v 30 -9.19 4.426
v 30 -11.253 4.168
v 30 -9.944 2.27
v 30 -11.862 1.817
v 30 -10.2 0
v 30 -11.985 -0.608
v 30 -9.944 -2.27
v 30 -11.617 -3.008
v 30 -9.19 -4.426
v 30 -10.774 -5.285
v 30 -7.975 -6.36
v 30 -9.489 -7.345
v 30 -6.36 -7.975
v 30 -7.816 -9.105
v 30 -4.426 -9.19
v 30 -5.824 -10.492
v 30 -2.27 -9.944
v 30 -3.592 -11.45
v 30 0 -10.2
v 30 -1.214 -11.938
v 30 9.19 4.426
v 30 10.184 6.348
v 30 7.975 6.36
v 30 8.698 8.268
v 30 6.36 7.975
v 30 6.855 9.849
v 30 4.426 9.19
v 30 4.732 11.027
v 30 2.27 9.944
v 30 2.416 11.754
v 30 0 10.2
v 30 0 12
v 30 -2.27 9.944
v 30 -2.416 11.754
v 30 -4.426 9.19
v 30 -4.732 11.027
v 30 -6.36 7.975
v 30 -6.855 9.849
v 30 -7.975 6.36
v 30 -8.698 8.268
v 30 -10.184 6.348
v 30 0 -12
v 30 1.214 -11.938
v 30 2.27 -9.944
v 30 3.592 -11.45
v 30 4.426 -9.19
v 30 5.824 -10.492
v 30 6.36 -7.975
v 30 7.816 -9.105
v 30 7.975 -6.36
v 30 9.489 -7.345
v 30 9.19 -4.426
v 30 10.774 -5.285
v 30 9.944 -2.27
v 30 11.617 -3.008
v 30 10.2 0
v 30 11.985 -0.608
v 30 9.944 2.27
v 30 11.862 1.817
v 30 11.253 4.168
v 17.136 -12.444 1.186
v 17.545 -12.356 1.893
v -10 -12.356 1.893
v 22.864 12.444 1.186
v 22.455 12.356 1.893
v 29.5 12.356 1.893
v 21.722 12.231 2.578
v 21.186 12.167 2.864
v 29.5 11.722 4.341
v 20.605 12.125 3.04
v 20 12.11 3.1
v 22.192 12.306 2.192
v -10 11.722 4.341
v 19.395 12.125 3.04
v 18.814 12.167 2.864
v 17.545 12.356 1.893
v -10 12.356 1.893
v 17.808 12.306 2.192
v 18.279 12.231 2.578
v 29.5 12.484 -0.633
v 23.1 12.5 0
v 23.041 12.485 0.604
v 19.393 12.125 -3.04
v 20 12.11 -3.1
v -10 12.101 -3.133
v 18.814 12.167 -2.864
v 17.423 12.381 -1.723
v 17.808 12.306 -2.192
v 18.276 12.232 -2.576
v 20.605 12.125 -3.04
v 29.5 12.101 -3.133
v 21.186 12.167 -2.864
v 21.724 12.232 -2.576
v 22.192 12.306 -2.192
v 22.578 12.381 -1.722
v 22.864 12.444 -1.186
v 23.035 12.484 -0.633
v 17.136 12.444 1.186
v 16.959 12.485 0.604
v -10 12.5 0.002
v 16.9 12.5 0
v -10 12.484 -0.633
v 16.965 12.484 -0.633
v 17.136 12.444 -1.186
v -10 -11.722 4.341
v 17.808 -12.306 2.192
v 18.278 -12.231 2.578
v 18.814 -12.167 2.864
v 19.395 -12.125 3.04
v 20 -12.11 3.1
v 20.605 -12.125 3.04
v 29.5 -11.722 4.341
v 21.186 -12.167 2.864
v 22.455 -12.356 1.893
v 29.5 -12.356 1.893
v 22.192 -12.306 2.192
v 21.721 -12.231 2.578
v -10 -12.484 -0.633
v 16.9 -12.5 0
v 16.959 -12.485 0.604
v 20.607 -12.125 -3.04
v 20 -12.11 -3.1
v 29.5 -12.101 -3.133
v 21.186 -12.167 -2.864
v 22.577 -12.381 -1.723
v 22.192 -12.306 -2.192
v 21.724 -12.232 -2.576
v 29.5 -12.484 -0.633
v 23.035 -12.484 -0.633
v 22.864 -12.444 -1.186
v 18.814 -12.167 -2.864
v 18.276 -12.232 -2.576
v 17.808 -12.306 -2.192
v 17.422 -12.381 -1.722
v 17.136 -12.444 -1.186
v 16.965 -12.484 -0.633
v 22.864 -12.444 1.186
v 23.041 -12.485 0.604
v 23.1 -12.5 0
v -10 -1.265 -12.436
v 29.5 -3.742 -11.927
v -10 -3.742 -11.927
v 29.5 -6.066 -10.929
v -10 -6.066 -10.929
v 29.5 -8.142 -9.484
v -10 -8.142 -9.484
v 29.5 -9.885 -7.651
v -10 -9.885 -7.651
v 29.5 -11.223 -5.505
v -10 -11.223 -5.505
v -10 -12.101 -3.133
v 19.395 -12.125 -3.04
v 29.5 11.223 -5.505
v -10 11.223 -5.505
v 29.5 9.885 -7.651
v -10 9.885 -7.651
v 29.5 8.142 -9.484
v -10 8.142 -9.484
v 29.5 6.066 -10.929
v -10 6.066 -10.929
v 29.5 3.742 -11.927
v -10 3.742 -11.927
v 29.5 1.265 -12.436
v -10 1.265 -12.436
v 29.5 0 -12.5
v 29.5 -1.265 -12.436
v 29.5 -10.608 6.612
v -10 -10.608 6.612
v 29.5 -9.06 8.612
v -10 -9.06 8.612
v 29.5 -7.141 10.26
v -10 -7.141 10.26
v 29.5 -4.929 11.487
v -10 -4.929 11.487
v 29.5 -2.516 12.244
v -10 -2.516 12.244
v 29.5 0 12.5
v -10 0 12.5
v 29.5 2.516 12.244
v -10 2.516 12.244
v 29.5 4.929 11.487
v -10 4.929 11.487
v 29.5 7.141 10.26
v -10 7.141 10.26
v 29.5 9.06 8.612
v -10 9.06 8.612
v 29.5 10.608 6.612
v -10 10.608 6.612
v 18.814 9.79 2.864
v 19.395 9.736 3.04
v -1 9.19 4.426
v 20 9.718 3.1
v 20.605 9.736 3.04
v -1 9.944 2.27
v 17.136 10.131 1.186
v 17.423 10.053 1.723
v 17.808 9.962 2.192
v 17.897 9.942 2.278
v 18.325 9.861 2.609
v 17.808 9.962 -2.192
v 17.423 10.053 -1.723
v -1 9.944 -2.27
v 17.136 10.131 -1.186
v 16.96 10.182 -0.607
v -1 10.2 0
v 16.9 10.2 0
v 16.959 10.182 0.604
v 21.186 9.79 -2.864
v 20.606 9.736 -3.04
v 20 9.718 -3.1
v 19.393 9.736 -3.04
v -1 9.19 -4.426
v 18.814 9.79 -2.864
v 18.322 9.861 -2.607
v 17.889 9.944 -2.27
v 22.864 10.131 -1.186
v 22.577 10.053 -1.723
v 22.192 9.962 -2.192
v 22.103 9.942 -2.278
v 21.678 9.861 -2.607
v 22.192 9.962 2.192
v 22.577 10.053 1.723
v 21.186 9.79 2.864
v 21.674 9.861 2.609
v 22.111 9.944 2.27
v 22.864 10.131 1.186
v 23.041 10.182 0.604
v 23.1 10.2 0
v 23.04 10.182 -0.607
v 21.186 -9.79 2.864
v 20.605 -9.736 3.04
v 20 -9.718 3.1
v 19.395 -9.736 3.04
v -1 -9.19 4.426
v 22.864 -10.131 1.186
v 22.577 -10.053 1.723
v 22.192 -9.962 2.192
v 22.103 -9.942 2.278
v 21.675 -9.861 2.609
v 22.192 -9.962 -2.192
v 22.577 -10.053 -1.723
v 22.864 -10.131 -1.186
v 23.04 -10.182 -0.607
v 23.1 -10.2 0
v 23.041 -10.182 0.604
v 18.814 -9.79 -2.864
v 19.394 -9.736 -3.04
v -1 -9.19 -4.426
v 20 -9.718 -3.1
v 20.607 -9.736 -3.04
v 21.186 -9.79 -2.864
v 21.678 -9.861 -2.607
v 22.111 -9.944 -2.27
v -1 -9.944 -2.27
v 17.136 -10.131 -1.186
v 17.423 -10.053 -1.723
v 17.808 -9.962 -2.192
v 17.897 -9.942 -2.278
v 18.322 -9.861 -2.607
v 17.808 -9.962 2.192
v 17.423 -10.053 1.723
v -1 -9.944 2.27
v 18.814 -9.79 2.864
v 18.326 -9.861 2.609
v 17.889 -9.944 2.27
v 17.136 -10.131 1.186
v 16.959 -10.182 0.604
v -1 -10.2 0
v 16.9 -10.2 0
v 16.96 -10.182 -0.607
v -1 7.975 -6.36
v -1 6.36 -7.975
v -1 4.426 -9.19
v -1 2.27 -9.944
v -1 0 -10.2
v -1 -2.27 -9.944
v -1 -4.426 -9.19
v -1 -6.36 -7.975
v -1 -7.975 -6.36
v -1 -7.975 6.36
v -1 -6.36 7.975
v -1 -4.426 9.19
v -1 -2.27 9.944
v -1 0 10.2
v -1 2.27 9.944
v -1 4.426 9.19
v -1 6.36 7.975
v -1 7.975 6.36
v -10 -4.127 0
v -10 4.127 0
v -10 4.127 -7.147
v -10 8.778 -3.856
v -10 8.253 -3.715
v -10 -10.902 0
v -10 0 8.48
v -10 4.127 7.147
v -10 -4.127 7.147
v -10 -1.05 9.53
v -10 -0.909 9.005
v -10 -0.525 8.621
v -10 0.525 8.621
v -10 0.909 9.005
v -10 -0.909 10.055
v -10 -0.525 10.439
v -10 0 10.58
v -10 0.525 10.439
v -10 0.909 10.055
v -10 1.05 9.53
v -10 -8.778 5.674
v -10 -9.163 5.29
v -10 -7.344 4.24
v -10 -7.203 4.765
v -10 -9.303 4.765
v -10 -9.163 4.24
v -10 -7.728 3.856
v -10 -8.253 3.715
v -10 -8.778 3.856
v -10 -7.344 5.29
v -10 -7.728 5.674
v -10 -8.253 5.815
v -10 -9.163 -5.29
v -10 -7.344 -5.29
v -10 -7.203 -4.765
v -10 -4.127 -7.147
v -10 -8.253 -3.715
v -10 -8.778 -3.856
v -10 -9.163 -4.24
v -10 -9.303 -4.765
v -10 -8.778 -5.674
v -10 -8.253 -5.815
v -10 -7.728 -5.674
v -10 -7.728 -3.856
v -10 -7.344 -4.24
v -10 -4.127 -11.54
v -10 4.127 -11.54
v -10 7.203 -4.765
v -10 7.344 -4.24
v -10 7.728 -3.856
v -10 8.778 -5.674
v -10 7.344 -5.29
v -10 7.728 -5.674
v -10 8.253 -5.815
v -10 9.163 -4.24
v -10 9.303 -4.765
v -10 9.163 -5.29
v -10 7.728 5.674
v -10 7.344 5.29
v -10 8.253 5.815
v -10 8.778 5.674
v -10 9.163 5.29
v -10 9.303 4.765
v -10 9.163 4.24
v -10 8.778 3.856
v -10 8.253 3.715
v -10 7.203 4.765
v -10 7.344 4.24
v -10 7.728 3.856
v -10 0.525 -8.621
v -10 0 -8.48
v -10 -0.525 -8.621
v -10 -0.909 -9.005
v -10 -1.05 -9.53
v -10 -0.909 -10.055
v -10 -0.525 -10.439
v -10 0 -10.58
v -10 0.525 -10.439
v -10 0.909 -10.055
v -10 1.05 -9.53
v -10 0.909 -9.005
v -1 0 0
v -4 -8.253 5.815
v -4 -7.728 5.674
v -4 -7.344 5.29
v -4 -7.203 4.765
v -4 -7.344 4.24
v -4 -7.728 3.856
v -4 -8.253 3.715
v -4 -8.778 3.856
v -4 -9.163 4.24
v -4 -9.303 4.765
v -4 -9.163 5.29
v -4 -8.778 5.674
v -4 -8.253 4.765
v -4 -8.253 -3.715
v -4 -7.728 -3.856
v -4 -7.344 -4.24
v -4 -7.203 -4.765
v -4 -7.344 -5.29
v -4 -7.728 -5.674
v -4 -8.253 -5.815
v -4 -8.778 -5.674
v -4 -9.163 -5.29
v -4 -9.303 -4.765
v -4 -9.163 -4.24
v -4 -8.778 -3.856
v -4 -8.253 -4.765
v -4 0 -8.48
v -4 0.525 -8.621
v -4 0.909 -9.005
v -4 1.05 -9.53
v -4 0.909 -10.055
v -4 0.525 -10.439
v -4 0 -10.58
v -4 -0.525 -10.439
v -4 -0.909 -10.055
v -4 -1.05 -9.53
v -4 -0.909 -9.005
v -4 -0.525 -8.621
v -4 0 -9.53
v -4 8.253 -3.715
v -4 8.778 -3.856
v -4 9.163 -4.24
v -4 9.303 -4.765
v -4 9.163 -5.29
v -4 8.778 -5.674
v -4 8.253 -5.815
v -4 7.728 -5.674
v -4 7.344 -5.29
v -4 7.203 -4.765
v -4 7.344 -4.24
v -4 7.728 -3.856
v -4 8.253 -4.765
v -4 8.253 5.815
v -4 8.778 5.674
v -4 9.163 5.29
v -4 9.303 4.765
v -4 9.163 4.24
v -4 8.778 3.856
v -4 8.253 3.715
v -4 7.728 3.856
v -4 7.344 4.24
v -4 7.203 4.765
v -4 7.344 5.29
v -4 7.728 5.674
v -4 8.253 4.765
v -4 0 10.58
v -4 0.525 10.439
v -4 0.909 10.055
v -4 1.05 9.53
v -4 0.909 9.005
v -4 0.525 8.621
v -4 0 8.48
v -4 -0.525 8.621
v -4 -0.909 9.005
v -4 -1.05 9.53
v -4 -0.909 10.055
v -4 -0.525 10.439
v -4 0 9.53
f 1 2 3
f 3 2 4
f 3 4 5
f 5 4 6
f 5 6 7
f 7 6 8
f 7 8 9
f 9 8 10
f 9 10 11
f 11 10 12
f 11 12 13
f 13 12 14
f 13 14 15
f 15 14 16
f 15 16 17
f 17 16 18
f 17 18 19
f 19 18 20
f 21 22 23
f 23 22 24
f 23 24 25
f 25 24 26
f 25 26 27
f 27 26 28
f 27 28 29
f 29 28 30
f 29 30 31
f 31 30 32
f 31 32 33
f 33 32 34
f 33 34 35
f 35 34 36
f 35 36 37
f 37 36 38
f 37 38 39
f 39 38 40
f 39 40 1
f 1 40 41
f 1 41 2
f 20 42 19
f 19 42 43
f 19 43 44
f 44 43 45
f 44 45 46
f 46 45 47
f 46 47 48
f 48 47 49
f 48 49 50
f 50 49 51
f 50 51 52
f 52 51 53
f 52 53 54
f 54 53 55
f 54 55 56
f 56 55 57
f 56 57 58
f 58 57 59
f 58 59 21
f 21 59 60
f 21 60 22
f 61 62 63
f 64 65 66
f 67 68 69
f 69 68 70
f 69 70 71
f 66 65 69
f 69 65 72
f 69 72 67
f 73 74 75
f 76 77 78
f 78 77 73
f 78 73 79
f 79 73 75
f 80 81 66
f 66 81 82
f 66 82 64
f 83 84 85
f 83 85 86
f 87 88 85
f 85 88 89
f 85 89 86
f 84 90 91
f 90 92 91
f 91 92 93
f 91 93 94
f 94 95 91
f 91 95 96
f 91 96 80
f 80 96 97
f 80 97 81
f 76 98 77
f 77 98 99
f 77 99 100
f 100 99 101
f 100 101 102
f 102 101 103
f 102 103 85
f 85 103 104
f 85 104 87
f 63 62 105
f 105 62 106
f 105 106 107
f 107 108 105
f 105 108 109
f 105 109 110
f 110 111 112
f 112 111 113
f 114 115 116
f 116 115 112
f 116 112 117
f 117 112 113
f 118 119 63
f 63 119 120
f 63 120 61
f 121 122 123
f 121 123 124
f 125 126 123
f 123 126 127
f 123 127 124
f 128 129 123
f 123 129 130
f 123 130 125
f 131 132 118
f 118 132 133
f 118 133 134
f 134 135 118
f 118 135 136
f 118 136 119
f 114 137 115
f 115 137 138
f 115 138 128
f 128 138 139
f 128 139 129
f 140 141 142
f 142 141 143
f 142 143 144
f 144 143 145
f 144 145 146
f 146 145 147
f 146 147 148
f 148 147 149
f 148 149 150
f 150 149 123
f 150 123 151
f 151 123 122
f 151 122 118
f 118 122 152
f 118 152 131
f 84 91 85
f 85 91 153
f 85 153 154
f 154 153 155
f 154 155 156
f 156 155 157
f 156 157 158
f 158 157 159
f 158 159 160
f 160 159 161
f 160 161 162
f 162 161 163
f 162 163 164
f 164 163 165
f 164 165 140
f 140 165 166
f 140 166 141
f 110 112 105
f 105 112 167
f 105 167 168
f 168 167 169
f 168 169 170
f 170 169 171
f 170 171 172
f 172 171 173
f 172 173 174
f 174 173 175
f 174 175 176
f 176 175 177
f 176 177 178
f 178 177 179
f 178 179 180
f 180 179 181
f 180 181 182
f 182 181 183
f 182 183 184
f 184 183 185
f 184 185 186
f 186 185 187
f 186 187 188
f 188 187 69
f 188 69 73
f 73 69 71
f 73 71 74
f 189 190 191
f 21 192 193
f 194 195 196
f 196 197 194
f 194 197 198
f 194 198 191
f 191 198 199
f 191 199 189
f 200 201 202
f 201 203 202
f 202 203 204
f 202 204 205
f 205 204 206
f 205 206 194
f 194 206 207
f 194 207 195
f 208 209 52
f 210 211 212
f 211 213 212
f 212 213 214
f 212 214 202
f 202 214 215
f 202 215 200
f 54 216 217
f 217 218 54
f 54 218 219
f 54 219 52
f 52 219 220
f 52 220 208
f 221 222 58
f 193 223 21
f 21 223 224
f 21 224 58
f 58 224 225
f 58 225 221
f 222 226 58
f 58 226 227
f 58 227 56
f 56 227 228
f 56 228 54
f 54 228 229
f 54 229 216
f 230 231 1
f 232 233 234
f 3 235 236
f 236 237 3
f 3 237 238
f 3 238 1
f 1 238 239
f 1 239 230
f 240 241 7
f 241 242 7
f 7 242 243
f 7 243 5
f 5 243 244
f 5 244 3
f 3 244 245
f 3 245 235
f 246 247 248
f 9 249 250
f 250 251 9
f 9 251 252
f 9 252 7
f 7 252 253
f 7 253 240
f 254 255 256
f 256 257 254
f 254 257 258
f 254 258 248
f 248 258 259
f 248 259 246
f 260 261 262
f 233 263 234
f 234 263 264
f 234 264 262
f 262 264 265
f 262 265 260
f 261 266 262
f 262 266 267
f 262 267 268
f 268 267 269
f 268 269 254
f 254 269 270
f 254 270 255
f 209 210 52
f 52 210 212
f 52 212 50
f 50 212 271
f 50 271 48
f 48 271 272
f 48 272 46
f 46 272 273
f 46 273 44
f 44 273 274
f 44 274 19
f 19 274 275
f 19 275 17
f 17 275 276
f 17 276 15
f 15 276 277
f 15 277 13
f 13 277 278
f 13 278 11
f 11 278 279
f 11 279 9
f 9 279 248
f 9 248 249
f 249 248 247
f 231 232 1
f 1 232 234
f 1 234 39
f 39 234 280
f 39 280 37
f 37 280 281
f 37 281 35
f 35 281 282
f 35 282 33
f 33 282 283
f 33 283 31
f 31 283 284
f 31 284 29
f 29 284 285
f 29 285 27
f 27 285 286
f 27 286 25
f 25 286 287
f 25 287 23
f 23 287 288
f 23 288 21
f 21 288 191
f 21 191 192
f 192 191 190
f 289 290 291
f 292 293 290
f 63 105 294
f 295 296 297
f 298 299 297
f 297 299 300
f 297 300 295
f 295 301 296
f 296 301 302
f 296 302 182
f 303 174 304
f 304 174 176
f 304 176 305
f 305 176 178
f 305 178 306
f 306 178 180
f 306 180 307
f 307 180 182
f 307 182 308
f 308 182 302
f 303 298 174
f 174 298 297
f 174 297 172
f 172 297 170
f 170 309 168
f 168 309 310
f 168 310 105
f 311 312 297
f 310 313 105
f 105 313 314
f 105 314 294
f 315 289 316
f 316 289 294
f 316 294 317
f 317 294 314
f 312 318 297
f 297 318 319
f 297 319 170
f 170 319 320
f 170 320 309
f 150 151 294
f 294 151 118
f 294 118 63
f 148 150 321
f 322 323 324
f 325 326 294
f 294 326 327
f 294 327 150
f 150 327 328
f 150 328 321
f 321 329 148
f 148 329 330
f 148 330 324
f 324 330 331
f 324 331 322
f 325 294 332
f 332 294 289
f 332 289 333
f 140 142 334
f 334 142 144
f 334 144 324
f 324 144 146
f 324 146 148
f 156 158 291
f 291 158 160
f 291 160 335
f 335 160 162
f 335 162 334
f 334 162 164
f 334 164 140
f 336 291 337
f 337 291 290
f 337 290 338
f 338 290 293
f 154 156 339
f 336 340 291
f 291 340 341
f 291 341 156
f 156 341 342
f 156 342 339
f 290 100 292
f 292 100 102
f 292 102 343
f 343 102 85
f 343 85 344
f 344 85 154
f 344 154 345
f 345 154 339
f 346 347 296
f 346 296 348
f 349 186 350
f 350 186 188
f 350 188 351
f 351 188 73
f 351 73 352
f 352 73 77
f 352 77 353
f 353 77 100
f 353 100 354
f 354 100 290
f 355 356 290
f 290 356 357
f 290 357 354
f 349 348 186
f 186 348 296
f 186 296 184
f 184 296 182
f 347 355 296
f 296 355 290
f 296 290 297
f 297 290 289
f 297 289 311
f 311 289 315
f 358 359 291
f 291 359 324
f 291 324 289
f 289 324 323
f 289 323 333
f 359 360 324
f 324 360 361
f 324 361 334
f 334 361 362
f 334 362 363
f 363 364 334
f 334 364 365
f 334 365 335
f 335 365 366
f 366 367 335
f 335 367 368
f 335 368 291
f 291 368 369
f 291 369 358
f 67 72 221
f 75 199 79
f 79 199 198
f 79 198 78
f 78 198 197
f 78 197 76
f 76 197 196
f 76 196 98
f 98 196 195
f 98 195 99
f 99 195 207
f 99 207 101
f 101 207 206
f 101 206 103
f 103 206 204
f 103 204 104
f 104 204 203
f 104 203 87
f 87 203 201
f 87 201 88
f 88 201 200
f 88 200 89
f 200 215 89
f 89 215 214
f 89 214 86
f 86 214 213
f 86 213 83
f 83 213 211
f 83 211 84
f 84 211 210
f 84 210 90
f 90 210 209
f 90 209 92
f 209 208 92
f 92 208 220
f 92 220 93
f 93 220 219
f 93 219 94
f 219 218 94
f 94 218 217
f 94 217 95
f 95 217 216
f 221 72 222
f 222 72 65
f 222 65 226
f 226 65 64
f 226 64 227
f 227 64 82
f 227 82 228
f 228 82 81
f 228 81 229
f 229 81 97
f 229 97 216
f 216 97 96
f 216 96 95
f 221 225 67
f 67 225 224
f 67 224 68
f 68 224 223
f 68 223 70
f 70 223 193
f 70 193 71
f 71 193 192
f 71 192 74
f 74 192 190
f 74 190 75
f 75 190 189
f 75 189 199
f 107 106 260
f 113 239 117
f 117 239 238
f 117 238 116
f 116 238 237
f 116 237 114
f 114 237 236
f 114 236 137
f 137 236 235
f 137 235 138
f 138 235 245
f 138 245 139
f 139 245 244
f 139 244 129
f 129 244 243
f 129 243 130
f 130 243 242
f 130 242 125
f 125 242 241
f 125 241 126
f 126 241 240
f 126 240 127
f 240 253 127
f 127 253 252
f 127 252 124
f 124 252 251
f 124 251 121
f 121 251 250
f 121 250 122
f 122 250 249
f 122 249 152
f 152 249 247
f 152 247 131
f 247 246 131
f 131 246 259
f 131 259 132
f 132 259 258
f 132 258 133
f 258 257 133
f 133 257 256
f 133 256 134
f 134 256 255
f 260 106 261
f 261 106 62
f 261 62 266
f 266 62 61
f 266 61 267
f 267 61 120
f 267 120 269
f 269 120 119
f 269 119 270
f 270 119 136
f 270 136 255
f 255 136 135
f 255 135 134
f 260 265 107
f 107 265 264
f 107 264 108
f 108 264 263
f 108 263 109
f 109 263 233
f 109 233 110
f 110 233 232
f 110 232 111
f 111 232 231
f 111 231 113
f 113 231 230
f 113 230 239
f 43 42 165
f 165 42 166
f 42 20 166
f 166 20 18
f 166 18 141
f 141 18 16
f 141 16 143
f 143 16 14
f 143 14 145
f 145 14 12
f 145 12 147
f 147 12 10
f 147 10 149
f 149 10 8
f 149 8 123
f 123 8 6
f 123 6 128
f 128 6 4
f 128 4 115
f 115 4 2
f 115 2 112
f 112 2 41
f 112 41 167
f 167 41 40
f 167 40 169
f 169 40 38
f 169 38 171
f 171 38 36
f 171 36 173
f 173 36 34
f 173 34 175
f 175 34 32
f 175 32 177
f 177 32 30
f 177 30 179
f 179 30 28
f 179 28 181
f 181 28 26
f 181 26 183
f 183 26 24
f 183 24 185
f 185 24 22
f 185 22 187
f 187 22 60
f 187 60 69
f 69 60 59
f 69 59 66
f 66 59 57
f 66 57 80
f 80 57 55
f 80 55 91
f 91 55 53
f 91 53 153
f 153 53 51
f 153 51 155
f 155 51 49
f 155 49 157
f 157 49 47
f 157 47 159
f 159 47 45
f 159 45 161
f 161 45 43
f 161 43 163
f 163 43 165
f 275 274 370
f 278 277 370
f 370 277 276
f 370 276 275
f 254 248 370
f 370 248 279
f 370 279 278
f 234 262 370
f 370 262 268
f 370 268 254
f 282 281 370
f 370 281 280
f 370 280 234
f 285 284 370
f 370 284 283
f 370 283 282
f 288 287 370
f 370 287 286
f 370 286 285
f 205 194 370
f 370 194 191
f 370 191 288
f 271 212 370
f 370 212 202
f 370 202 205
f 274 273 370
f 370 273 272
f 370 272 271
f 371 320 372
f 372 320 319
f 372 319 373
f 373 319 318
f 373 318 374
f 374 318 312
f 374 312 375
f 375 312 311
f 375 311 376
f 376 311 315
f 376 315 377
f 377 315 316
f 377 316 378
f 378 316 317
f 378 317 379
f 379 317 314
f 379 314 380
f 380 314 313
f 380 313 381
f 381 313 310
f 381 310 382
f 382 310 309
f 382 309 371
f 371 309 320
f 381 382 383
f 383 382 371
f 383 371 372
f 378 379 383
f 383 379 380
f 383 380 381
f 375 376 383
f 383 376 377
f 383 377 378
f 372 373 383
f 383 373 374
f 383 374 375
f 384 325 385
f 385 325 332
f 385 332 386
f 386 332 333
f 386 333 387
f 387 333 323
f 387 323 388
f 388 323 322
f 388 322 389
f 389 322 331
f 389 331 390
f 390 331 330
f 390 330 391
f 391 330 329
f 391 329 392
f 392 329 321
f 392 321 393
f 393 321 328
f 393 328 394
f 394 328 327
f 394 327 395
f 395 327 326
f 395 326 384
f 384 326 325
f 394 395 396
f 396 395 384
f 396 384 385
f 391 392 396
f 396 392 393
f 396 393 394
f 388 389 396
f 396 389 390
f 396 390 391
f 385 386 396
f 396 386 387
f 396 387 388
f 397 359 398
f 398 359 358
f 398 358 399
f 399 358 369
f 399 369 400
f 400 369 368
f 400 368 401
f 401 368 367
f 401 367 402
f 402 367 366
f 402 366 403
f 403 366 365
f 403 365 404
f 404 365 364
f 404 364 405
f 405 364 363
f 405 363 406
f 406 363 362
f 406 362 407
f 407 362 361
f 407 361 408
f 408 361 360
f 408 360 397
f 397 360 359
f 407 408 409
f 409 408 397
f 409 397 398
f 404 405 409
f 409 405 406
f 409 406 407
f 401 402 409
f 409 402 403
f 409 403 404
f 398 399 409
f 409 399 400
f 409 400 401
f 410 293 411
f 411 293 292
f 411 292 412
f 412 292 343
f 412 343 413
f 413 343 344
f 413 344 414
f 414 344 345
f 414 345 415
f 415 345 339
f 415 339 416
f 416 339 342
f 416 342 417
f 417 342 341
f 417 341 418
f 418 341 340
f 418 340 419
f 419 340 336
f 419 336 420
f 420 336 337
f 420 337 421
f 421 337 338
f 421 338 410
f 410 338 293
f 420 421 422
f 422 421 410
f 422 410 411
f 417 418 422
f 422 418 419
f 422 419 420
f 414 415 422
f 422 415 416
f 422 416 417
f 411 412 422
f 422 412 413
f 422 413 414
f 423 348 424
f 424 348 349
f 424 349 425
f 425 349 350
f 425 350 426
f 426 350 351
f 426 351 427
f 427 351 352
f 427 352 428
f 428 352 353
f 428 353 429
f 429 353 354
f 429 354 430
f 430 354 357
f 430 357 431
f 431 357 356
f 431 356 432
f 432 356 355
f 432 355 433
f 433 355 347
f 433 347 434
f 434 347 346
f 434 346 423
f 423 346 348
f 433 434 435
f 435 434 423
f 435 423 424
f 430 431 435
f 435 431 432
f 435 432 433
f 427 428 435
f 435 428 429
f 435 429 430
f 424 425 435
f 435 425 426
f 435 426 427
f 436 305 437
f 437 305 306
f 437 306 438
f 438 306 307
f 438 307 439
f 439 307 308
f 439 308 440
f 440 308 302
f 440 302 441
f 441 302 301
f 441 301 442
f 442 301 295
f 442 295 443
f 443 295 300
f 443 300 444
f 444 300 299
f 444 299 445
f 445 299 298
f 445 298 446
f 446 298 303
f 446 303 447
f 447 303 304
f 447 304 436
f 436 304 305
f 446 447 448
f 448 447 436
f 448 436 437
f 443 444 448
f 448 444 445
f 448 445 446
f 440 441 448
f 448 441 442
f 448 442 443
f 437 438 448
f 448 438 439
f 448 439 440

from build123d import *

# Parameters (mm, degrees)
SKETCH_1_R          = 12.5
SKETCH_1_R_2        = 10.2
EXTRUDE_1_DEPTH     = 30
EXTRUDE_START       = 10
SKETCH_2_R          = 12.5
EXTRUDE_2_DEPTH     = 10
SKETCH_3_R          = 3.1
CUT_EXTRUDE_1_DEPTH = 15
CHAMFER_1_SIZE      = 0.5
CUT_EXTRUDE_START   = -1
SKETCH_4_R          = 10.2
CUT_EXTRUDE_2_DEPTH = 1
SKETCH_5_R          = 1.05
CUT_EXTRUDE_3_DEPTH = 6


with BuildPart() as part:
    # 草图1 → 凸台-拉伸1 (new body)
    with BuildSketch(Plane(origin=(0, 0, 0), x_dir=(0, 0, -1), z_dir=(1, 0, 0))):
        Circle(SKETCH_1_R)
        Circle(SKETCH_1_R_2, mode=Mode.SUBTRACT)
    extrude(amount=EXTRUDE_1_DEPTH)

    # 草图2 → 凸台-拉伸2 (add)
    with BuildSketch(Plane.ZY.offset(EXTRUDE_START)):
        Circle(SKETCH_2_R)
    extrude(amount=-EXTRUDE_2_DEPTH)

    # 草图3 → 切除-拉伸1 (cut, symmetric)
    with BuildSketch(Plane(origin=(0, 0, 0), x_dir=(1, 0, 0), z_dir=(0, 1, 0))):
        with Locations(Location((20, 0, 0), (0, 0, 270))):
            Circle(SKETCH_3_R)
    extrude(amount=CUT_EXTRUDE_1_DEPTH, both=True, mode=Mode.SUBTRACT)

    # 倒角1
    chamfer_1_edges = [part.edges().sort_by_distance(p)[0] for p in [
        (30, 0, 12.5),
    ]]
    chamfer(chamfer_1_edges, length=CHAMFER_1_SIZE)

    # 草图4 → 切除-拉伸2 (cut)
    with BuildSketch(Plane(origin=(0, 0, 0), x_dir=(0, 0, -1), z_dir=(1, 0, 0)).offset(CUT_EXTRUDE_START)):
        Circle(SKETCH_4_R)
    extrude(amount=CUT_EXTRUDE_2_DEPTH, mode=Mode.SUBTRACT)

    # 草图5 → 切除-拉伸3 (cut)
    with BuildSketch(Plane.ZY.offset(10)):
        with Locations((9.53, 0)):
            Circle(SKETCH_5_R)
        with Locations((4.765, -8.253222098)):
            Circle(SKETCH_5_R)
        with Locations((-4.765, -8.253222098)):
            Circle(SKETCH_5_R)
        with Locations((-9.53, 0)):
            Circle(SKETCH_5_R)
        with Locations((-4.765, 8.253222098)):
            Circle(SKETCH_5_R)
        with Locations((4.765, 8.253222098)):
            Circle(SKETCH_5_R)
    extrude(amount=-CUT_EXTRUDE_3_DEPTH, mode=Mode.SUBTRACT)


solid = part.part
